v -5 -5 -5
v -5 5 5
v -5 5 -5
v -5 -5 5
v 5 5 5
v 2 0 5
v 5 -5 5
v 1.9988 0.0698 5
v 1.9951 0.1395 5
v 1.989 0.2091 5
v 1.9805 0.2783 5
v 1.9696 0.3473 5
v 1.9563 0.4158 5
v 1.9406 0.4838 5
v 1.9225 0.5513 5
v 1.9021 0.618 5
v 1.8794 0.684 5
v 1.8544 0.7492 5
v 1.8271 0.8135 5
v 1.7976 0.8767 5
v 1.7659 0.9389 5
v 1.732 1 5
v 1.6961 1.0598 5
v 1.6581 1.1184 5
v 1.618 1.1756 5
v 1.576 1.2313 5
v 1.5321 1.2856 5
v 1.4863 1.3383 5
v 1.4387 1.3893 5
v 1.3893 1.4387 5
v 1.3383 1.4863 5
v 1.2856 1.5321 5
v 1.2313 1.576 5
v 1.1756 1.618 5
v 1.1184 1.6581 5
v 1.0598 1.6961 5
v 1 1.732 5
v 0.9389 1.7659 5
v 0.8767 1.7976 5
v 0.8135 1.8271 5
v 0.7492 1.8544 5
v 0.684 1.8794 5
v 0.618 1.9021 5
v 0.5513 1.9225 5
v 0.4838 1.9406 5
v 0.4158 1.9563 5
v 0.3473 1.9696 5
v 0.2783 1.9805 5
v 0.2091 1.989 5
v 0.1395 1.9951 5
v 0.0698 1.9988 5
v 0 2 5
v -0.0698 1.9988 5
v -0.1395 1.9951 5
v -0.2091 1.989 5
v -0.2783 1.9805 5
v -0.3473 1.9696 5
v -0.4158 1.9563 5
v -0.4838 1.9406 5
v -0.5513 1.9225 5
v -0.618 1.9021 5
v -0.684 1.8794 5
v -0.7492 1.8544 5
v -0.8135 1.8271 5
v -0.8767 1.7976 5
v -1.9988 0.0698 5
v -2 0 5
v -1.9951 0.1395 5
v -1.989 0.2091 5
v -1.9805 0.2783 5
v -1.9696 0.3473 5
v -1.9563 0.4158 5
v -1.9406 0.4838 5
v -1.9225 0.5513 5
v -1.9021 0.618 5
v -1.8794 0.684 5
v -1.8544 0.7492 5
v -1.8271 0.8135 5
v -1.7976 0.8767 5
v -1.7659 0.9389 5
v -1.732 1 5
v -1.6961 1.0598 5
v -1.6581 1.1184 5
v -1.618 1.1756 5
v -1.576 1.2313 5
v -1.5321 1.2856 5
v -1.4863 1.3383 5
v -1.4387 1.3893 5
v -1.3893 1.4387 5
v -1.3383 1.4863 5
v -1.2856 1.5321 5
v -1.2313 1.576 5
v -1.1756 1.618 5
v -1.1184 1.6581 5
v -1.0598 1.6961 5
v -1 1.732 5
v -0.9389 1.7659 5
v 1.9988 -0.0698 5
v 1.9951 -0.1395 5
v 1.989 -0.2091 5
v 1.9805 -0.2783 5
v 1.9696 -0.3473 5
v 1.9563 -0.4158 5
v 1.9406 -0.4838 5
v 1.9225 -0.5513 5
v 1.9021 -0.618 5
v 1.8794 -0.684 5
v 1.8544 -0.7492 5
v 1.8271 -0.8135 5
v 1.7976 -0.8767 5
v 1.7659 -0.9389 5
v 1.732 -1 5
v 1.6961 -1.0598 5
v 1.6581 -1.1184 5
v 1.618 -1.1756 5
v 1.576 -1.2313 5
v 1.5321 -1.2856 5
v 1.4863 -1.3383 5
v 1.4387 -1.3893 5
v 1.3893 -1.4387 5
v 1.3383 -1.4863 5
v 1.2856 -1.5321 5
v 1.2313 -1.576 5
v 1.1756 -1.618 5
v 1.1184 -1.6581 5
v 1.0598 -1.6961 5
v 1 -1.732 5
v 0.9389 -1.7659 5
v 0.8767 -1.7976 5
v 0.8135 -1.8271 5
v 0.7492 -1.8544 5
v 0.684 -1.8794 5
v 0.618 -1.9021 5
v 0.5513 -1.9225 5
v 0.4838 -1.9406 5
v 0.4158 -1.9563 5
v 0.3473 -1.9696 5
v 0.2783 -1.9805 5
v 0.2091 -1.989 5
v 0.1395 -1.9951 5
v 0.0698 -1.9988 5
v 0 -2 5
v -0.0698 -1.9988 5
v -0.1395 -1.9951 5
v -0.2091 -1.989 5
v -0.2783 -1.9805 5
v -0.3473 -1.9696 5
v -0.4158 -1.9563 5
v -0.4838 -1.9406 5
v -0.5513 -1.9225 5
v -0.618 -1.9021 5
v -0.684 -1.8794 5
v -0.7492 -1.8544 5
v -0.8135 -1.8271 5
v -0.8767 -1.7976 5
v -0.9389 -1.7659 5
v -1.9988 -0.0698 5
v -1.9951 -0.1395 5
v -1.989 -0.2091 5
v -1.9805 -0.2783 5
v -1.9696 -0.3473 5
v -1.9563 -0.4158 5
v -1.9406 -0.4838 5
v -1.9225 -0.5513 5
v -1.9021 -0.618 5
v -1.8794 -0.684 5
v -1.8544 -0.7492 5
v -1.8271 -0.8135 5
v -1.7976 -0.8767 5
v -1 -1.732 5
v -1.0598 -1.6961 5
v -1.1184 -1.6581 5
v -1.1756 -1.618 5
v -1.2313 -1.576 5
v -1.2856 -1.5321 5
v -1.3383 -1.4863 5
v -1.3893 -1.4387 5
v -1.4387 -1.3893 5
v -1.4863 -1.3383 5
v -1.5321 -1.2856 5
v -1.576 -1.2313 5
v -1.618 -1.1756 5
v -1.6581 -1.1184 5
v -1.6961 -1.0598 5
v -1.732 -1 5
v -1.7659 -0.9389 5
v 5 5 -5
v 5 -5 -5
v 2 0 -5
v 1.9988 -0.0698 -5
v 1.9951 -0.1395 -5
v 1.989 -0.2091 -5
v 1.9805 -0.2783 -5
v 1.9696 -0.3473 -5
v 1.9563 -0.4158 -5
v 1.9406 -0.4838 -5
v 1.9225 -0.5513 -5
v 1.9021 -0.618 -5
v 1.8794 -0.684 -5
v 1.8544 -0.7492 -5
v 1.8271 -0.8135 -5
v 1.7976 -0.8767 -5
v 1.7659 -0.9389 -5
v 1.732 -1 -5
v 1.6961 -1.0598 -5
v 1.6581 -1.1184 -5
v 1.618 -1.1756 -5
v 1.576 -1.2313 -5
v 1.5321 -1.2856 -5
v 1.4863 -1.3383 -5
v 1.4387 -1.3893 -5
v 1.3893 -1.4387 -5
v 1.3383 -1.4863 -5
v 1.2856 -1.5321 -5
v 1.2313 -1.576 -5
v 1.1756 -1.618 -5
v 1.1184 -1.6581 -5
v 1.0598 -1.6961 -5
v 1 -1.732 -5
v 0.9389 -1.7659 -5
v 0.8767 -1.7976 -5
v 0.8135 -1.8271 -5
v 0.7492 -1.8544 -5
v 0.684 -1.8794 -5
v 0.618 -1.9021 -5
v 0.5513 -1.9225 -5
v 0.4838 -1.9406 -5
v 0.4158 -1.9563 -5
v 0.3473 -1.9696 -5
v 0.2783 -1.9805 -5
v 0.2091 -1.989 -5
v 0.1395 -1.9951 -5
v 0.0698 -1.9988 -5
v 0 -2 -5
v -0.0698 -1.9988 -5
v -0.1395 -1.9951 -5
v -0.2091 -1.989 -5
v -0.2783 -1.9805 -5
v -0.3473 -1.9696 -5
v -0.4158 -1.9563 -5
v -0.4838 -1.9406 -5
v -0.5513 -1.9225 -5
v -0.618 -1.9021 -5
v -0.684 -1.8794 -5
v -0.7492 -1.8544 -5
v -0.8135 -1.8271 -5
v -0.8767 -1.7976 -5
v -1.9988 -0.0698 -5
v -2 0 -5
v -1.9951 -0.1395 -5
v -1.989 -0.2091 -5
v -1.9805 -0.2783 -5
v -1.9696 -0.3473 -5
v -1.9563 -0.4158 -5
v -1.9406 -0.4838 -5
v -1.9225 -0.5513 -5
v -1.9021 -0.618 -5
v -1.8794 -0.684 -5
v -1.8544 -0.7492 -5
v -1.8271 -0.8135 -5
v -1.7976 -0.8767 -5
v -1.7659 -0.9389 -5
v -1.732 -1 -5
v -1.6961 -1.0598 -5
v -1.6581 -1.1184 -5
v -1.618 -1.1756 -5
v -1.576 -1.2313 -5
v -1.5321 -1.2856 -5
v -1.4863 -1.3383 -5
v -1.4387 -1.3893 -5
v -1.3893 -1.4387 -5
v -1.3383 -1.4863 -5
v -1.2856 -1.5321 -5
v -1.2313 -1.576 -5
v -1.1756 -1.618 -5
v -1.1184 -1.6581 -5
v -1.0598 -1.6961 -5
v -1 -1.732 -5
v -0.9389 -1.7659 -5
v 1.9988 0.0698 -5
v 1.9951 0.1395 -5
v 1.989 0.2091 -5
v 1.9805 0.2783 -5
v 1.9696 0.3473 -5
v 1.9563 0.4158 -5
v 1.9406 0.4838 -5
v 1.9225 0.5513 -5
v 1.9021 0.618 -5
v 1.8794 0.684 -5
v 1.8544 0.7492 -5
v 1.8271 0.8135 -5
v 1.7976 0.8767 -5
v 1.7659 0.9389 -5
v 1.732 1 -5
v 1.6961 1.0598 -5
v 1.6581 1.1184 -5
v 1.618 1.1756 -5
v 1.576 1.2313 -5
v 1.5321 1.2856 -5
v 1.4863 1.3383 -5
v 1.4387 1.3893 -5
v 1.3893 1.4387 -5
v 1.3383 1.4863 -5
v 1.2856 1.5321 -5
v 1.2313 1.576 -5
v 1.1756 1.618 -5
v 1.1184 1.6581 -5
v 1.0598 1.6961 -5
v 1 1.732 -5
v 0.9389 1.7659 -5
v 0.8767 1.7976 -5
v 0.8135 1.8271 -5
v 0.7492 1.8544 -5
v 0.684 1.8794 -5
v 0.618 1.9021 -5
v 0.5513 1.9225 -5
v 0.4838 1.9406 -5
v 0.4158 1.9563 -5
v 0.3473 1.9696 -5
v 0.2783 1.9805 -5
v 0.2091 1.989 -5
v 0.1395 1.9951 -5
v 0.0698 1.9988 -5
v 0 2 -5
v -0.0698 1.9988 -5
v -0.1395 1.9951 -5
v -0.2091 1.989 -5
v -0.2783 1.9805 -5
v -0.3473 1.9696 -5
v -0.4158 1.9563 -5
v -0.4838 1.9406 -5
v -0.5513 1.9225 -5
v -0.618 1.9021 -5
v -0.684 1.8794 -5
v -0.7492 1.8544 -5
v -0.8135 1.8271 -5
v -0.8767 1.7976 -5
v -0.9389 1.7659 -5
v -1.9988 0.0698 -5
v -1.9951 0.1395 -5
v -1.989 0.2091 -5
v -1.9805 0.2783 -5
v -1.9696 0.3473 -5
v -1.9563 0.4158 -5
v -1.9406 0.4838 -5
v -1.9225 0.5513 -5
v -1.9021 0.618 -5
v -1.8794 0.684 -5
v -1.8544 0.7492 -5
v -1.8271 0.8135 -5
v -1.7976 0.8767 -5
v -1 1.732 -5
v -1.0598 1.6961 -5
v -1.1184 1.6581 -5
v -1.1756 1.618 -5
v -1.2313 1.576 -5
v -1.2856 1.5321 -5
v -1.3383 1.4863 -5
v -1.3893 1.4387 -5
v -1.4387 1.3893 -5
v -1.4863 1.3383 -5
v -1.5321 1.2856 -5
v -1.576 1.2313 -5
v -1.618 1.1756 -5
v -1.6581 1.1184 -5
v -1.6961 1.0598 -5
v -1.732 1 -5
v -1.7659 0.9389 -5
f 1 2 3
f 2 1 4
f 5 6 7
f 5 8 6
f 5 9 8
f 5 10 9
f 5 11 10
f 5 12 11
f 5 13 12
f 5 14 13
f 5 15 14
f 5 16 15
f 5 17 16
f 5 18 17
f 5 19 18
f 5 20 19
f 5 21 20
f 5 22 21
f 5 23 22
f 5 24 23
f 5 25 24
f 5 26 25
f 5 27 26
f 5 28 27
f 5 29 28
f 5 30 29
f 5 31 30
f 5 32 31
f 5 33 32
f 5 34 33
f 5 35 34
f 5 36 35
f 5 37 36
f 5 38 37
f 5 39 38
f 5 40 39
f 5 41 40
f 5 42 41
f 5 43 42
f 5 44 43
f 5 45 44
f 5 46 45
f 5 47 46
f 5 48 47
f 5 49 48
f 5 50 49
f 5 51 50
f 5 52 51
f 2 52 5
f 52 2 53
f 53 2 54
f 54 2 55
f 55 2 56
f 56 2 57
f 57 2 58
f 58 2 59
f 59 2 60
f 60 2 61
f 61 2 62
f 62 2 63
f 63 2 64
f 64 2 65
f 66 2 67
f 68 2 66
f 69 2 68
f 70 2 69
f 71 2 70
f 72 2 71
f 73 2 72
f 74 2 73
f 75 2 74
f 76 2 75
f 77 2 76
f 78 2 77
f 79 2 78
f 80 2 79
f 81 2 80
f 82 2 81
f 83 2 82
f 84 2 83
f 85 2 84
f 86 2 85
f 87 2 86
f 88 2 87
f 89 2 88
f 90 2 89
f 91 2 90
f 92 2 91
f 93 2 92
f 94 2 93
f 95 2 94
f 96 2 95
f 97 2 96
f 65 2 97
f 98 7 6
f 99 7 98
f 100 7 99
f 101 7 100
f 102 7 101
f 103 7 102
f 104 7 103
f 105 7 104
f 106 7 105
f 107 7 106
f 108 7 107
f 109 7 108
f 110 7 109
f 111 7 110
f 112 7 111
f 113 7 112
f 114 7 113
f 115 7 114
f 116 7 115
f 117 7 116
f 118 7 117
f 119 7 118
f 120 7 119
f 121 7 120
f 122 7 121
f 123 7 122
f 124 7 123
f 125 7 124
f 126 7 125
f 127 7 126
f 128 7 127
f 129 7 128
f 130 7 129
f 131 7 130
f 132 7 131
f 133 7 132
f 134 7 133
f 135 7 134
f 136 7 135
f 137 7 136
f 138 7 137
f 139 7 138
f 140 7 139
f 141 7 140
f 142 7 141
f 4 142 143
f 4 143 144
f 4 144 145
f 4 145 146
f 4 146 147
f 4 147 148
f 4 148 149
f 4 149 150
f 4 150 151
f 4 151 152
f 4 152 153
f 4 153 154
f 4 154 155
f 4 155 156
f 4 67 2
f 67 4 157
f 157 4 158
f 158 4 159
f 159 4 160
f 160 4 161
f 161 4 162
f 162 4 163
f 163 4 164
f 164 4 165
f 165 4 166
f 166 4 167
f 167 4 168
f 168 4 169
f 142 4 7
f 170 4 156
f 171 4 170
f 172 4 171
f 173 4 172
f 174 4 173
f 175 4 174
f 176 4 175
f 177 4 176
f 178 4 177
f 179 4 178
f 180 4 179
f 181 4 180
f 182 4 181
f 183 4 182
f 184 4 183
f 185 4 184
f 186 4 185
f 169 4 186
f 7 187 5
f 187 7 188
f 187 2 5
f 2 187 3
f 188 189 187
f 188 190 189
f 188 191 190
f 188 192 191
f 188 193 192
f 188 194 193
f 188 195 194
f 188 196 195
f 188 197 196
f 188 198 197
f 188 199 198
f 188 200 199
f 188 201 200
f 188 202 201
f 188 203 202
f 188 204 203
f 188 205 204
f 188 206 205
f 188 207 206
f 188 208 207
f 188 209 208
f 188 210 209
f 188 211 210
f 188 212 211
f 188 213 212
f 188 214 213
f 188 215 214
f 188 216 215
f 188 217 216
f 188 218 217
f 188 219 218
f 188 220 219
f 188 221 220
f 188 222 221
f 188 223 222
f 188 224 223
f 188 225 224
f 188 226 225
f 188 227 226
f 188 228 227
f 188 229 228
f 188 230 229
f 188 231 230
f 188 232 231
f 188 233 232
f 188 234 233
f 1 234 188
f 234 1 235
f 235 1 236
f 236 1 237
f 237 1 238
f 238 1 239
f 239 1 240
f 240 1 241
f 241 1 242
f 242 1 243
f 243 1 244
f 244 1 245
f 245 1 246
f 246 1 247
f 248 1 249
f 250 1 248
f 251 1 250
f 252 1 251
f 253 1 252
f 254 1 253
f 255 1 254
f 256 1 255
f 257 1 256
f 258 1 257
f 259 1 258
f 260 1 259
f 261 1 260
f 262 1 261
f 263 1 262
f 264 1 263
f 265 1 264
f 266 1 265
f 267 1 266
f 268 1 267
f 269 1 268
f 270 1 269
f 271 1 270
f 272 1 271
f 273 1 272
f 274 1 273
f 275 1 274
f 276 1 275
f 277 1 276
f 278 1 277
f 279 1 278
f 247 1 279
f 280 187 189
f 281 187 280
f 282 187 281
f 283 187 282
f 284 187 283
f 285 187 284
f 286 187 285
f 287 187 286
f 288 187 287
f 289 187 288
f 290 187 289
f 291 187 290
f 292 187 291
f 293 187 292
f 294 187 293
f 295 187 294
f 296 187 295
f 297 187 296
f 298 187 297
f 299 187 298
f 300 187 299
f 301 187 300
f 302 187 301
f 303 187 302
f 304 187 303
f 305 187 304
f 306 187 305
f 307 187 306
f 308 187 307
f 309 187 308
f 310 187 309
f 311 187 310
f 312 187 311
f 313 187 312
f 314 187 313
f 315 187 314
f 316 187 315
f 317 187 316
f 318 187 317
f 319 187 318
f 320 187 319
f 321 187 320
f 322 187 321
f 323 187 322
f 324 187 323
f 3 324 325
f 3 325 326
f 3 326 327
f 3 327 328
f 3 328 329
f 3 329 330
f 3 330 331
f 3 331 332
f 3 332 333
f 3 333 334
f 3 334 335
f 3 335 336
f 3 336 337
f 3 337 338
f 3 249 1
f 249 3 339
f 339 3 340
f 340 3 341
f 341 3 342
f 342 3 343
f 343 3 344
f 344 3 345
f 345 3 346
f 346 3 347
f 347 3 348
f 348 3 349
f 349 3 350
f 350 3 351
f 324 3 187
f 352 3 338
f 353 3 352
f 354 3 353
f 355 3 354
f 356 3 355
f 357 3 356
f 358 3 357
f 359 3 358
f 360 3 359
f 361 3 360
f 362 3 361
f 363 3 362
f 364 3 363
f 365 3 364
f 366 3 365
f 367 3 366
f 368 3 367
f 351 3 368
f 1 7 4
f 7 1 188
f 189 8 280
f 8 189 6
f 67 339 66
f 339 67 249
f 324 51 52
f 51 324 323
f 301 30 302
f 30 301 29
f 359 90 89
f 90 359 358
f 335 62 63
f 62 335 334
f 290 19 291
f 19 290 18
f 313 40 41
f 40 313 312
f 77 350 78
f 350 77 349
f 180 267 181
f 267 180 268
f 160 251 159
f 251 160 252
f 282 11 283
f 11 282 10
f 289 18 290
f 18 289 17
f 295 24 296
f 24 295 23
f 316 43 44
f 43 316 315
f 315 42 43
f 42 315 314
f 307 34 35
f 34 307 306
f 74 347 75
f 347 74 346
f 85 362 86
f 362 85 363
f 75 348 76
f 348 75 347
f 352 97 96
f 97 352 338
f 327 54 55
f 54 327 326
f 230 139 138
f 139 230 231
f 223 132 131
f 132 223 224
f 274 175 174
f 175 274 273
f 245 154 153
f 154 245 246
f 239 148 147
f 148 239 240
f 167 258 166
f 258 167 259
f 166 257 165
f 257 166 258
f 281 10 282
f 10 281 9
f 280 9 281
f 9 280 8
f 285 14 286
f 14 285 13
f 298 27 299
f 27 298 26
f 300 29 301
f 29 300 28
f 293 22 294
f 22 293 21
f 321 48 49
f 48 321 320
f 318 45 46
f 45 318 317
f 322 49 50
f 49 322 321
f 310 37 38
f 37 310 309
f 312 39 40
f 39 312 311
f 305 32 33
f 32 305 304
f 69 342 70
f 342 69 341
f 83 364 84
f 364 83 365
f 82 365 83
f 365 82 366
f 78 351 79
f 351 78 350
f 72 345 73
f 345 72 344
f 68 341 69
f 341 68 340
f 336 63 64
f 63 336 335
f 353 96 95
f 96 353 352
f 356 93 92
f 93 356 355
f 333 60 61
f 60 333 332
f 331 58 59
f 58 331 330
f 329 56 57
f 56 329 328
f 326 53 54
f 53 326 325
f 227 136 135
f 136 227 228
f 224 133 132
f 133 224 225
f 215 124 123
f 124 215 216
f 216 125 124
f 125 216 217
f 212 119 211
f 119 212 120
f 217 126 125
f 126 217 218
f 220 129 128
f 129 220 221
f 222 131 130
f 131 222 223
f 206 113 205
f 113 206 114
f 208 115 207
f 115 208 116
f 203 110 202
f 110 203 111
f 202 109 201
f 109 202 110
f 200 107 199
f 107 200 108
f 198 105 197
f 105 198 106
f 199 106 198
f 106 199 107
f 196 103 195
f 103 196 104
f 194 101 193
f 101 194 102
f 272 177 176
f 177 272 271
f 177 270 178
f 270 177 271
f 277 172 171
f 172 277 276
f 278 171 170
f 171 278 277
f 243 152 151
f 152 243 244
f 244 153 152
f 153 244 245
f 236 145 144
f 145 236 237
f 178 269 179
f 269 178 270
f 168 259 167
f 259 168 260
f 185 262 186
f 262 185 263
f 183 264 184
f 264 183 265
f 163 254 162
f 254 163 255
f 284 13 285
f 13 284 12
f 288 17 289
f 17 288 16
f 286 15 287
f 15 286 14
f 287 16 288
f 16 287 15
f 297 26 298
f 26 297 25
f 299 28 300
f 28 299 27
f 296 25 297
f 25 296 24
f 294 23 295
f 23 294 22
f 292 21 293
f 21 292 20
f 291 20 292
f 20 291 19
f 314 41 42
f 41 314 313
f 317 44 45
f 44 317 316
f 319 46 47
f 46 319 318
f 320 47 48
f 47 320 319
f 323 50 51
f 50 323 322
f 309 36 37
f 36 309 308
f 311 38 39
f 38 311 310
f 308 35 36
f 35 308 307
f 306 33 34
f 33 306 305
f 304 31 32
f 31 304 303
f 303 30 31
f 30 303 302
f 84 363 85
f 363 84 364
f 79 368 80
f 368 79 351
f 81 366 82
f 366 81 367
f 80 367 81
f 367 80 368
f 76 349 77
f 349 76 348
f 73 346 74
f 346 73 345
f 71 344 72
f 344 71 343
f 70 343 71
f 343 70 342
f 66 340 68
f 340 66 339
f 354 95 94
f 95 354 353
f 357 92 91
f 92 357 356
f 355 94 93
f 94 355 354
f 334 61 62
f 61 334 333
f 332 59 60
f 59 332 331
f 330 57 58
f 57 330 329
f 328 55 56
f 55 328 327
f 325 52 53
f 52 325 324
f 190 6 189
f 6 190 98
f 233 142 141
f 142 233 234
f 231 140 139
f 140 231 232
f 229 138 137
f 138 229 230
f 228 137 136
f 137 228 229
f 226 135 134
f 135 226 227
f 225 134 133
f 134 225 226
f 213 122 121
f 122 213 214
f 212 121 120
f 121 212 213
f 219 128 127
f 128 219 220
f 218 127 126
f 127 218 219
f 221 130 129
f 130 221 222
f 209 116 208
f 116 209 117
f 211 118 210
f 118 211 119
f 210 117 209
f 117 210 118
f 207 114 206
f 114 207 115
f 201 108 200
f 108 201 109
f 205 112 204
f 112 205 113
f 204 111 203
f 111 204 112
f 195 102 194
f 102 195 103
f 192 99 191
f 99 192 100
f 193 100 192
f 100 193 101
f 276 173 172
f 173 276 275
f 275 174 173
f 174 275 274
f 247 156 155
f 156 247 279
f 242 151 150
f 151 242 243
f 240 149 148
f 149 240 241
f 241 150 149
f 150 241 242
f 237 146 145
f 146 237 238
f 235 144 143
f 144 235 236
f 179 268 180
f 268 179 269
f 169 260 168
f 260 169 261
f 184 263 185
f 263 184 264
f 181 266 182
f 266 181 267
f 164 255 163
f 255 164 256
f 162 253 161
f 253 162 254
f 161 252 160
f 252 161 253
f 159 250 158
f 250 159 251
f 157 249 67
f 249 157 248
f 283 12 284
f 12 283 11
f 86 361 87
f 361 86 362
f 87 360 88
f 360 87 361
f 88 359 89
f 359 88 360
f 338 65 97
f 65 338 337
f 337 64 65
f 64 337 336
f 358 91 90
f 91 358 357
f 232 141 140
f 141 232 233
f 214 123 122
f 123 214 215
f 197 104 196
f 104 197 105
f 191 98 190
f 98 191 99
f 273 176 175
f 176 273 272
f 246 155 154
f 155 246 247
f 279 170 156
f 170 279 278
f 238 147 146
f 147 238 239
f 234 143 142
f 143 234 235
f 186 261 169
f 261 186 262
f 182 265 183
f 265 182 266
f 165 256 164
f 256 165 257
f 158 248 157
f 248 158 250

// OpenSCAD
$fn = $preview ? 24 : 180;
difference(){
    cube(10, center=true);
    translate([0,0,-5.5]) cylinder(h=11,d=4);
}
